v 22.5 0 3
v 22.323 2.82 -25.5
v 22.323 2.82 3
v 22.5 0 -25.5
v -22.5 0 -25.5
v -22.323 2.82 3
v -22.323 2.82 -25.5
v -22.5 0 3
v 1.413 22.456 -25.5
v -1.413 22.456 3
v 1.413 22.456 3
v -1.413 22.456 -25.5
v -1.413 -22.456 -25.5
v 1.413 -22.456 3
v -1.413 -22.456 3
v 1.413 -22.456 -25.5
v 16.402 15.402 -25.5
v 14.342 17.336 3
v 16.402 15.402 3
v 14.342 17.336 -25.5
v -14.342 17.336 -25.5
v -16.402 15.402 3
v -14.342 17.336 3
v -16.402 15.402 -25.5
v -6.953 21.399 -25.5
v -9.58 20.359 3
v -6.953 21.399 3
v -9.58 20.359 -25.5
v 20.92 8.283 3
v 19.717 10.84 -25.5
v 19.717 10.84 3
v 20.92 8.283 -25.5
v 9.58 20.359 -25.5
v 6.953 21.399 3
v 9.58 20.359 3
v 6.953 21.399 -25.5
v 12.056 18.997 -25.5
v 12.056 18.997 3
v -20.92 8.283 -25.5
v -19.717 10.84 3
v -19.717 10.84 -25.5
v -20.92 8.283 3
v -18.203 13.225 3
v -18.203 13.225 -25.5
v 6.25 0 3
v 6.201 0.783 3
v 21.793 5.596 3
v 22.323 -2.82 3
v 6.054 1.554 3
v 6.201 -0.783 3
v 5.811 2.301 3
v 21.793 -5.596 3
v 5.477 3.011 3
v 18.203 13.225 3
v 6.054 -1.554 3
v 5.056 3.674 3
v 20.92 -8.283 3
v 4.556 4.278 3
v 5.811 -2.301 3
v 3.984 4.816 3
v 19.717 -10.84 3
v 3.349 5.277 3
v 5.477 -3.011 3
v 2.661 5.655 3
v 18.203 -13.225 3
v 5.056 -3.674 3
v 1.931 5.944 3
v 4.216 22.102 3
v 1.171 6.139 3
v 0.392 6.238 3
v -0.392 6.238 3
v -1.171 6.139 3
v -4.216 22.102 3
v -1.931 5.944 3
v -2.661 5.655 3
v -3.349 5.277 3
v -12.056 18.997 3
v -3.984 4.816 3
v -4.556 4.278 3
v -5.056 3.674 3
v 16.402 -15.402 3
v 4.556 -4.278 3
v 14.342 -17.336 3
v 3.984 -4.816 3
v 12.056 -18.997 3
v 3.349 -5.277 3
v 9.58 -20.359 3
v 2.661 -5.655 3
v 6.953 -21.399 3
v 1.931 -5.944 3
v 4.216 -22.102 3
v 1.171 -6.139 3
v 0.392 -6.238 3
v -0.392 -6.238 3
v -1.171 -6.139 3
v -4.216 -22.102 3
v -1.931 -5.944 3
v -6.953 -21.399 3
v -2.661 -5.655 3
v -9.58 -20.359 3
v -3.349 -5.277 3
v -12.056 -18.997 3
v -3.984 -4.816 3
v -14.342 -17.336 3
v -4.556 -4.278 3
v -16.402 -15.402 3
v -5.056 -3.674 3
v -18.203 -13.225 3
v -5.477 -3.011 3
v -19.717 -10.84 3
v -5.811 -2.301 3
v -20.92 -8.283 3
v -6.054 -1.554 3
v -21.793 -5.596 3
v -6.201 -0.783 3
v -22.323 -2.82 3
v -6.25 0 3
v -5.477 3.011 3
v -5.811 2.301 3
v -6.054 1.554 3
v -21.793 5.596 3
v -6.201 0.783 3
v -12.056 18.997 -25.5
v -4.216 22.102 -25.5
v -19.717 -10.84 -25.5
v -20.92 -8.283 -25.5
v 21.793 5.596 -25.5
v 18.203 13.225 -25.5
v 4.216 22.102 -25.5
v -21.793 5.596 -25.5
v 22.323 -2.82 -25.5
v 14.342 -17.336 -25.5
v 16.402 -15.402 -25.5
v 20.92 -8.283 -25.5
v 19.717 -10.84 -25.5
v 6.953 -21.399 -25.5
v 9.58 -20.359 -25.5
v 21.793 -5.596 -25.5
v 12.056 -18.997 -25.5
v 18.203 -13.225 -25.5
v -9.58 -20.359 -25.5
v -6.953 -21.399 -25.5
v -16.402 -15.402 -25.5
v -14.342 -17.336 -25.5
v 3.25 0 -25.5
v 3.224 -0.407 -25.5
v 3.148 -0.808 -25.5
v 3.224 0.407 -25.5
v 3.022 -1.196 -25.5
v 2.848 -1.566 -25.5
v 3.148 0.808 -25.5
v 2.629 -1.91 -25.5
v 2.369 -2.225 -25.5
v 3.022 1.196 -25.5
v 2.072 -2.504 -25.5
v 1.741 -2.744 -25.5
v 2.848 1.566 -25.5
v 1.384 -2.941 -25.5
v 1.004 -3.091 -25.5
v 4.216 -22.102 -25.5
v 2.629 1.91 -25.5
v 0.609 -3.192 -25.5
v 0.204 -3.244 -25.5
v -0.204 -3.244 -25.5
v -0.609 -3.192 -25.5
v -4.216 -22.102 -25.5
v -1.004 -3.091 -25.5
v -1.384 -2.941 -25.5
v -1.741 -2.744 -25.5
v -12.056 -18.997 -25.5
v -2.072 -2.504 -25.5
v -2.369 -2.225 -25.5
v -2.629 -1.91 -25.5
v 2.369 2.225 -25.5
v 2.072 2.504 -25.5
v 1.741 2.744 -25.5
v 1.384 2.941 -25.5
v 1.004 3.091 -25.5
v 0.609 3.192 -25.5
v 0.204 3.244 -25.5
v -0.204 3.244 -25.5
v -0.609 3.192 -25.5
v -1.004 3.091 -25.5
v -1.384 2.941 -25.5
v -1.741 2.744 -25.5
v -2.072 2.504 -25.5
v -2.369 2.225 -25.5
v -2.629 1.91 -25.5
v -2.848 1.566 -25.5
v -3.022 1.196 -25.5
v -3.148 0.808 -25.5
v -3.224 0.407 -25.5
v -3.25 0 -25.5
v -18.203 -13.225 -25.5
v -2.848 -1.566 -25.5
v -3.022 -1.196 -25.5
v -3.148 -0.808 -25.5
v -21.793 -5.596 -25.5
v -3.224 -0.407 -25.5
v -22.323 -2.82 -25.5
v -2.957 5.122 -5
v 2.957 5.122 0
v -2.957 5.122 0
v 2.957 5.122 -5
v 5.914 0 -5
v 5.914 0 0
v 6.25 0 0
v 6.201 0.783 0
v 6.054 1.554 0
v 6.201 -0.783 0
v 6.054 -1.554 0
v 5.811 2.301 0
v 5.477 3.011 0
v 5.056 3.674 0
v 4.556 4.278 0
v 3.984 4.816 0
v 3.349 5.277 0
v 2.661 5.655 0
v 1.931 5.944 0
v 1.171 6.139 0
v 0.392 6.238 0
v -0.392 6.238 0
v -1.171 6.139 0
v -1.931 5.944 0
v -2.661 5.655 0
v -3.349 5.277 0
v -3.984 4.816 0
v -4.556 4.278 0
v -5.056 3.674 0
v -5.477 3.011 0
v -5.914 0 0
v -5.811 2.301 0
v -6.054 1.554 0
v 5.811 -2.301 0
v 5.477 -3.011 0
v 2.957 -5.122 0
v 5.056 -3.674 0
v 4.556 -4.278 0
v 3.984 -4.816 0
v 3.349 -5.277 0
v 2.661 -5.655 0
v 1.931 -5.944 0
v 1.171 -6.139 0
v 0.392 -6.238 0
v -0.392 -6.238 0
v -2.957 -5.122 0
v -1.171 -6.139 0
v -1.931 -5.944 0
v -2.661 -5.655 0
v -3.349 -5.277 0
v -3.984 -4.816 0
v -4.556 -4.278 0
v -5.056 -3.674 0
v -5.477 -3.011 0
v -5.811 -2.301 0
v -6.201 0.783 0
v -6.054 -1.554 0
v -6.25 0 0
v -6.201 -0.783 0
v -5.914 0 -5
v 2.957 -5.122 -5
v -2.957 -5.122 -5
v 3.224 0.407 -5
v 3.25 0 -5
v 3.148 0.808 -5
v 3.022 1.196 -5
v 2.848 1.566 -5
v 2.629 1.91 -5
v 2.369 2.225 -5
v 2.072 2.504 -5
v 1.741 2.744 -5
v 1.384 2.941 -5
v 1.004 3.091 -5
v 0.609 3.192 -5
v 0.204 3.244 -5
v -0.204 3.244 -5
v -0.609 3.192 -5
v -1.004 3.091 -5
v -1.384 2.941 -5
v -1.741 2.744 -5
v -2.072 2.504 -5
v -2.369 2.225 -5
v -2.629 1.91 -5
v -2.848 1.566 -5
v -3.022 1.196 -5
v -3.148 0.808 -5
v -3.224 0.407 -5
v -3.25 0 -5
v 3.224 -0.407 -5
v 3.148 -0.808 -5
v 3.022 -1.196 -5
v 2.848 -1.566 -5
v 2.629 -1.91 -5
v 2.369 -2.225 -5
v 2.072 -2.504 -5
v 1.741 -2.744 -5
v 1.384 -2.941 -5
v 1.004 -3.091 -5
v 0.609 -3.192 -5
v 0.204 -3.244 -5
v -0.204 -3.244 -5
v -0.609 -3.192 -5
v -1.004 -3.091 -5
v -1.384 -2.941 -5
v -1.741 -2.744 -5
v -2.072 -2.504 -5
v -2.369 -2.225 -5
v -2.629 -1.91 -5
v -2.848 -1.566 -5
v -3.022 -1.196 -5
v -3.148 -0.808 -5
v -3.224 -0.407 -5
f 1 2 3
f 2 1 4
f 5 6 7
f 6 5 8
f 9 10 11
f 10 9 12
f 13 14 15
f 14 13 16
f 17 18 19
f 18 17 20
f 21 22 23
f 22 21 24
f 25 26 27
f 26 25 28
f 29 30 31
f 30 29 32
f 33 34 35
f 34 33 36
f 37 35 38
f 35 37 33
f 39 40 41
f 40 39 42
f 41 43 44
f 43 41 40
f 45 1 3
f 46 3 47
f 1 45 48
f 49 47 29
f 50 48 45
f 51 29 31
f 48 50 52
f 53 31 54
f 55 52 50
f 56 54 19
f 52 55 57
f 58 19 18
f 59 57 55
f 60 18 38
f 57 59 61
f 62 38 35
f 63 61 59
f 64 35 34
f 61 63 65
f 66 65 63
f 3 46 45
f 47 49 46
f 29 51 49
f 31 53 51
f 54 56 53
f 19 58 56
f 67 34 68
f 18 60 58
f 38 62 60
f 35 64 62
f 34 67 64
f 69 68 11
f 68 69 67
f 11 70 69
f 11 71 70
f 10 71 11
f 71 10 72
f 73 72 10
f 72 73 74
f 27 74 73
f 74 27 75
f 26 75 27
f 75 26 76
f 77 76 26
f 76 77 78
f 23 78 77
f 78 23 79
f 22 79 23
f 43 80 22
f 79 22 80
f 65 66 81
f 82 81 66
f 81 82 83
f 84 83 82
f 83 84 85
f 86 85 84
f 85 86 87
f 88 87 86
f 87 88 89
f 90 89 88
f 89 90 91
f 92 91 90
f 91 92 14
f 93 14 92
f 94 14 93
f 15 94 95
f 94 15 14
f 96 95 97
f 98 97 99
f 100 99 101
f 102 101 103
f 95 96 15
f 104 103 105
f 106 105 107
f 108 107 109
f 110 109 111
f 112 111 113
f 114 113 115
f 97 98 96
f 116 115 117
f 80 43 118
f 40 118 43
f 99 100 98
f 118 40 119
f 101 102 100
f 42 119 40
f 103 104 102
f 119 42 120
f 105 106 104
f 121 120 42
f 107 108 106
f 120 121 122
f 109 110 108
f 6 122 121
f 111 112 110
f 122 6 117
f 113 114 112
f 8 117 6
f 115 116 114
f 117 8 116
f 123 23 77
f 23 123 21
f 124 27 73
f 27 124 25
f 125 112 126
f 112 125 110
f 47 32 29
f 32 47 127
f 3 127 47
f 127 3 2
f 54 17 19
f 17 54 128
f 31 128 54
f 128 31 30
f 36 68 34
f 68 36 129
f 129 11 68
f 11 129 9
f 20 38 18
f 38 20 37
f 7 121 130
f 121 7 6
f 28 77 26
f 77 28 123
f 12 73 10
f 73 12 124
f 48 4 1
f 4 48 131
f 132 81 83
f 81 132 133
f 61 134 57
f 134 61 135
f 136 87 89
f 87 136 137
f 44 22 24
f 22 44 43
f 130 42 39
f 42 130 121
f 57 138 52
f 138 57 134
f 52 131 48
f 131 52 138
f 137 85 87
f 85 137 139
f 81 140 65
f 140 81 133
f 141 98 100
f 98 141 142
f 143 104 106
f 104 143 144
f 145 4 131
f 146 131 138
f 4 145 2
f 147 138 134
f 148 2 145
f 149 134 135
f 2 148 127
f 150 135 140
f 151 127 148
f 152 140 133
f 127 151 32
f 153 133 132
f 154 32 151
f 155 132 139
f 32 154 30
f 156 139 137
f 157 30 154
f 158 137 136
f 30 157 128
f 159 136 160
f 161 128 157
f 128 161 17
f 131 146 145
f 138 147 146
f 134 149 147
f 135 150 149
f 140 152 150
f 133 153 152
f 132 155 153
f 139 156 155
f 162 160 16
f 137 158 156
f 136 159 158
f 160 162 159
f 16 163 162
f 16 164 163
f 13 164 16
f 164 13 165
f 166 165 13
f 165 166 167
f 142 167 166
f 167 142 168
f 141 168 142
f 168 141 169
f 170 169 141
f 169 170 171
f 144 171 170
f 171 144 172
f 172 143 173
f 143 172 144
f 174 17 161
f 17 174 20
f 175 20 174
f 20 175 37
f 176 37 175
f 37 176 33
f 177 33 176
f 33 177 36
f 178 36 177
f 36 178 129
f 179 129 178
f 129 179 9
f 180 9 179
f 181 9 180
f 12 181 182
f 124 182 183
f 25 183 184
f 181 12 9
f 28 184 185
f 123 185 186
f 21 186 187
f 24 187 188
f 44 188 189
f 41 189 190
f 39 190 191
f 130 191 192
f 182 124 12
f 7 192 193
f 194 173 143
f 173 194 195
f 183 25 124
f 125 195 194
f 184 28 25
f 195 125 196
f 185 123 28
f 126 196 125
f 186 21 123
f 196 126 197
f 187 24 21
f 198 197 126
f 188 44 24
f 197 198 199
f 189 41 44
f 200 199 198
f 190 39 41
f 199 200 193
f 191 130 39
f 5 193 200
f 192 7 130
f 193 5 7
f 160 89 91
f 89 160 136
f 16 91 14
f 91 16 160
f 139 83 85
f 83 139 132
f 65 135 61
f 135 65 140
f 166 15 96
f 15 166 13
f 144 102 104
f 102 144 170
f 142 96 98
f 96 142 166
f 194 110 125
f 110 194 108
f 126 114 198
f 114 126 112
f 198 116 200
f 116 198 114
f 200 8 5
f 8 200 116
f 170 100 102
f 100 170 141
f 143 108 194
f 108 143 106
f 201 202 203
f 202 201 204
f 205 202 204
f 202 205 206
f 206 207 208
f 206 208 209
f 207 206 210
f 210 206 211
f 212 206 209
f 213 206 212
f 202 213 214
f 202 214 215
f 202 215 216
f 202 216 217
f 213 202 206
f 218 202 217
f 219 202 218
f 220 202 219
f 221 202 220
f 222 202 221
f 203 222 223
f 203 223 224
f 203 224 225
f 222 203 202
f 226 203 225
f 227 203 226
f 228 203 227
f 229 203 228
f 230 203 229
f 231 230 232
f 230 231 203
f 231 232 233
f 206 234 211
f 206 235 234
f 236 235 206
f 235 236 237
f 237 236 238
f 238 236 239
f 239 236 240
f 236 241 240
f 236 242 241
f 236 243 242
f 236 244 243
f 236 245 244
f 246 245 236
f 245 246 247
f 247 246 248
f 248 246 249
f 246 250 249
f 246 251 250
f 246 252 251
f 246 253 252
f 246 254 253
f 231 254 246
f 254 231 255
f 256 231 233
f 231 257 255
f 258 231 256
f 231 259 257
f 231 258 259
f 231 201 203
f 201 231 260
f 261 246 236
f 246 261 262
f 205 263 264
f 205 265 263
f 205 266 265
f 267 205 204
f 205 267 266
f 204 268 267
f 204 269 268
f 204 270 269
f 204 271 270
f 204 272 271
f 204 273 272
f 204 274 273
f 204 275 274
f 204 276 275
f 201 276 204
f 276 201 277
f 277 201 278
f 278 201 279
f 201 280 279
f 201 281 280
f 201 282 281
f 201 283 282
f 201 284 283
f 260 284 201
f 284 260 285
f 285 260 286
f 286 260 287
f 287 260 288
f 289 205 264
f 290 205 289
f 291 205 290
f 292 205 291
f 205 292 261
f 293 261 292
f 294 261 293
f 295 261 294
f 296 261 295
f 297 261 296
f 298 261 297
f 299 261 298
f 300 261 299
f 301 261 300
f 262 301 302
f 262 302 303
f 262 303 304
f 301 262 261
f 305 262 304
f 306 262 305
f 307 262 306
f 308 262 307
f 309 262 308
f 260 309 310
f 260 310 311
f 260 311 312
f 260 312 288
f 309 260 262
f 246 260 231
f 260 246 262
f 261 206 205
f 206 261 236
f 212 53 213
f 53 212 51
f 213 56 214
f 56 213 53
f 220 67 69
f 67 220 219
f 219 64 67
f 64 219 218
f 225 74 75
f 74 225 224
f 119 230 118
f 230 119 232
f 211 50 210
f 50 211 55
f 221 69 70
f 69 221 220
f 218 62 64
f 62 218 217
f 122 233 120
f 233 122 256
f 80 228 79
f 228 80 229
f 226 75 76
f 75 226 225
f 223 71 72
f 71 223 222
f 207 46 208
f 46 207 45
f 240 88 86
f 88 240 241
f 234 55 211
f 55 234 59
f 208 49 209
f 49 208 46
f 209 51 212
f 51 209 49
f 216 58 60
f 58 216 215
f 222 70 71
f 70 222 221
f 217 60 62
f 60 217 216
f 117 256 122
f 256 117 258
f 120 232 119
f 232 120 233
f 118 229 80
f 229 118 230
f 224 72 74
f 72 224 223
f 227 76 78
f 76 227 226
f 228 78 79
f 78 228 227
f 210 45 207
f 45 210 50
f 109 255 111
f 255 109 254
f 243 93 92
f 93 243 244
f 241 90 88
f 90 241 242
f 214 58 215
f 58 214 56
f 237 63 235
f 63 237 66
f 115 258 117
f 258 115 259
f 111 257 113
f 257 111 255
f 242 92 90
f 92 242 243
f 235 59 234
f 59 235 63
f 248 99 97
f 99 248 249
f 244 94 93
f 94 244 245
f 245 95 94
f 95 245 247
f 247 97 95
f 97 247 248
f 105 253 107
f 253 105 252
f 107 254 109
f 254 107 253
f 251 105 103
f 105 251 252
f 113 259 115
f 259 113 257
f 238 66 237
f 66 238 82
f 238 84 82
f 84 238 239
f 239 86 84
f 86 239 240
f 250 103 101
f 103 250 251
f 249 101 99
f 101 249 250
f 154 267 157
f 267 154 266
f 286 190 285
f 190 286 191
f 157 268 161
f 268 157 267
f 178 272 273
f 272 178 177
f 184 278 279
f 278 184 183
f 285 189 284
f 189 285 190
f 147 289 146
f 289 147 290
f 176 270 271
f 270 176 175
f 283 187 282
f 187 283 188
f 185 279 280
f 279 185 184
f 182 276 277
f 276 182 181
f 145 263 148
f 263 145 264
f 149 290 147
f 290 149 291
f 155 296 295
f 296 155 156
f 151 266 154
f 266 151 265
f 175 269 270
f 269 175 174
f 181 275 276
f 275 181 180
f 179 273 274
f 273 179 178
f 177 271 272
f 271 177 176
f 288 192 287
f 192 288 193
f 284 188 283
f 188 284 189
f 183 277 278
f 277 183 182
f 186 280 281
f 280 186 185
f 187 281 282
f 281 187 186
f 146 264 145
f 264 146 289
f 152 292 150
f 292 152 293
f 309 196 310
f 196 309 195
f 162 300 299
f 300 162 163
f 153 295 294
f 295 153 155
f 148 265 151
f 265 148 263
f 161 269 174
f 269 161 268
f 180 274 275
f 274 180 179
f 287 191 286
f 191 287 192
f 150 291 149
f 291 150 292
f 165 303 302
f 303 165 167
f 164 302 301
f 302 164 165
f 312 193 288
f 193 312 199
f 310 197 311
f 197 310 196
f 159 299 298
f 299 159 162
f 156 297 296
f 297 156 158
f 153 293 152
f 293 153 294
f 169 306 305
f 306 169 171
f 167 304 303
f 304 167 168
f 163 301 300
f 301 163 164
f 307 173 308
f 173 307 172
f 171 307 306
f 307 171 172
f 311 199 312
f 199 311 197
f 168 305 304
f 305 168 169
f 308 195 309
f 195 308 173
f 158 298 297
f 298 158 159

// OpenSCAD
$fn = 50;

difference() {
	union() {
		translate(v = [0, 0, -25.5]) {
			cylinder(h = 28.5, r = 22.5);
		}
		#translate(v = [0, 0, -27.0]) {
			cylinder(h = 27, r = 2.875);
		}
	}
	union() {
		translate(v = [0, 0, 0]) {
			rotate(a = [0, 0, 0]) {
				difference() {
					union() {
						translate(v = [0, 0, -5]) {
							linear_extrude(height = 5) {
								polygon(points = [[5.914249999999999, 0.0], [2.957125, 5.1218907443321156], [-2.9571249999999982, 5.1218907443321156], [-5.914249999999999, 7.242867331857232e-16], [-2.9571250000000022, -5.121890744332115], [2.9571249999999956, -5.121890744332118]]);
							}
						}
					}
					union();
				}
			}
		}
		#cylinder(h = 3, r = 6.25);
		#translate(v = [0, 0, -100.0]) {
			cylinder(h = 200, r = 3.25);
		}
	}
}
